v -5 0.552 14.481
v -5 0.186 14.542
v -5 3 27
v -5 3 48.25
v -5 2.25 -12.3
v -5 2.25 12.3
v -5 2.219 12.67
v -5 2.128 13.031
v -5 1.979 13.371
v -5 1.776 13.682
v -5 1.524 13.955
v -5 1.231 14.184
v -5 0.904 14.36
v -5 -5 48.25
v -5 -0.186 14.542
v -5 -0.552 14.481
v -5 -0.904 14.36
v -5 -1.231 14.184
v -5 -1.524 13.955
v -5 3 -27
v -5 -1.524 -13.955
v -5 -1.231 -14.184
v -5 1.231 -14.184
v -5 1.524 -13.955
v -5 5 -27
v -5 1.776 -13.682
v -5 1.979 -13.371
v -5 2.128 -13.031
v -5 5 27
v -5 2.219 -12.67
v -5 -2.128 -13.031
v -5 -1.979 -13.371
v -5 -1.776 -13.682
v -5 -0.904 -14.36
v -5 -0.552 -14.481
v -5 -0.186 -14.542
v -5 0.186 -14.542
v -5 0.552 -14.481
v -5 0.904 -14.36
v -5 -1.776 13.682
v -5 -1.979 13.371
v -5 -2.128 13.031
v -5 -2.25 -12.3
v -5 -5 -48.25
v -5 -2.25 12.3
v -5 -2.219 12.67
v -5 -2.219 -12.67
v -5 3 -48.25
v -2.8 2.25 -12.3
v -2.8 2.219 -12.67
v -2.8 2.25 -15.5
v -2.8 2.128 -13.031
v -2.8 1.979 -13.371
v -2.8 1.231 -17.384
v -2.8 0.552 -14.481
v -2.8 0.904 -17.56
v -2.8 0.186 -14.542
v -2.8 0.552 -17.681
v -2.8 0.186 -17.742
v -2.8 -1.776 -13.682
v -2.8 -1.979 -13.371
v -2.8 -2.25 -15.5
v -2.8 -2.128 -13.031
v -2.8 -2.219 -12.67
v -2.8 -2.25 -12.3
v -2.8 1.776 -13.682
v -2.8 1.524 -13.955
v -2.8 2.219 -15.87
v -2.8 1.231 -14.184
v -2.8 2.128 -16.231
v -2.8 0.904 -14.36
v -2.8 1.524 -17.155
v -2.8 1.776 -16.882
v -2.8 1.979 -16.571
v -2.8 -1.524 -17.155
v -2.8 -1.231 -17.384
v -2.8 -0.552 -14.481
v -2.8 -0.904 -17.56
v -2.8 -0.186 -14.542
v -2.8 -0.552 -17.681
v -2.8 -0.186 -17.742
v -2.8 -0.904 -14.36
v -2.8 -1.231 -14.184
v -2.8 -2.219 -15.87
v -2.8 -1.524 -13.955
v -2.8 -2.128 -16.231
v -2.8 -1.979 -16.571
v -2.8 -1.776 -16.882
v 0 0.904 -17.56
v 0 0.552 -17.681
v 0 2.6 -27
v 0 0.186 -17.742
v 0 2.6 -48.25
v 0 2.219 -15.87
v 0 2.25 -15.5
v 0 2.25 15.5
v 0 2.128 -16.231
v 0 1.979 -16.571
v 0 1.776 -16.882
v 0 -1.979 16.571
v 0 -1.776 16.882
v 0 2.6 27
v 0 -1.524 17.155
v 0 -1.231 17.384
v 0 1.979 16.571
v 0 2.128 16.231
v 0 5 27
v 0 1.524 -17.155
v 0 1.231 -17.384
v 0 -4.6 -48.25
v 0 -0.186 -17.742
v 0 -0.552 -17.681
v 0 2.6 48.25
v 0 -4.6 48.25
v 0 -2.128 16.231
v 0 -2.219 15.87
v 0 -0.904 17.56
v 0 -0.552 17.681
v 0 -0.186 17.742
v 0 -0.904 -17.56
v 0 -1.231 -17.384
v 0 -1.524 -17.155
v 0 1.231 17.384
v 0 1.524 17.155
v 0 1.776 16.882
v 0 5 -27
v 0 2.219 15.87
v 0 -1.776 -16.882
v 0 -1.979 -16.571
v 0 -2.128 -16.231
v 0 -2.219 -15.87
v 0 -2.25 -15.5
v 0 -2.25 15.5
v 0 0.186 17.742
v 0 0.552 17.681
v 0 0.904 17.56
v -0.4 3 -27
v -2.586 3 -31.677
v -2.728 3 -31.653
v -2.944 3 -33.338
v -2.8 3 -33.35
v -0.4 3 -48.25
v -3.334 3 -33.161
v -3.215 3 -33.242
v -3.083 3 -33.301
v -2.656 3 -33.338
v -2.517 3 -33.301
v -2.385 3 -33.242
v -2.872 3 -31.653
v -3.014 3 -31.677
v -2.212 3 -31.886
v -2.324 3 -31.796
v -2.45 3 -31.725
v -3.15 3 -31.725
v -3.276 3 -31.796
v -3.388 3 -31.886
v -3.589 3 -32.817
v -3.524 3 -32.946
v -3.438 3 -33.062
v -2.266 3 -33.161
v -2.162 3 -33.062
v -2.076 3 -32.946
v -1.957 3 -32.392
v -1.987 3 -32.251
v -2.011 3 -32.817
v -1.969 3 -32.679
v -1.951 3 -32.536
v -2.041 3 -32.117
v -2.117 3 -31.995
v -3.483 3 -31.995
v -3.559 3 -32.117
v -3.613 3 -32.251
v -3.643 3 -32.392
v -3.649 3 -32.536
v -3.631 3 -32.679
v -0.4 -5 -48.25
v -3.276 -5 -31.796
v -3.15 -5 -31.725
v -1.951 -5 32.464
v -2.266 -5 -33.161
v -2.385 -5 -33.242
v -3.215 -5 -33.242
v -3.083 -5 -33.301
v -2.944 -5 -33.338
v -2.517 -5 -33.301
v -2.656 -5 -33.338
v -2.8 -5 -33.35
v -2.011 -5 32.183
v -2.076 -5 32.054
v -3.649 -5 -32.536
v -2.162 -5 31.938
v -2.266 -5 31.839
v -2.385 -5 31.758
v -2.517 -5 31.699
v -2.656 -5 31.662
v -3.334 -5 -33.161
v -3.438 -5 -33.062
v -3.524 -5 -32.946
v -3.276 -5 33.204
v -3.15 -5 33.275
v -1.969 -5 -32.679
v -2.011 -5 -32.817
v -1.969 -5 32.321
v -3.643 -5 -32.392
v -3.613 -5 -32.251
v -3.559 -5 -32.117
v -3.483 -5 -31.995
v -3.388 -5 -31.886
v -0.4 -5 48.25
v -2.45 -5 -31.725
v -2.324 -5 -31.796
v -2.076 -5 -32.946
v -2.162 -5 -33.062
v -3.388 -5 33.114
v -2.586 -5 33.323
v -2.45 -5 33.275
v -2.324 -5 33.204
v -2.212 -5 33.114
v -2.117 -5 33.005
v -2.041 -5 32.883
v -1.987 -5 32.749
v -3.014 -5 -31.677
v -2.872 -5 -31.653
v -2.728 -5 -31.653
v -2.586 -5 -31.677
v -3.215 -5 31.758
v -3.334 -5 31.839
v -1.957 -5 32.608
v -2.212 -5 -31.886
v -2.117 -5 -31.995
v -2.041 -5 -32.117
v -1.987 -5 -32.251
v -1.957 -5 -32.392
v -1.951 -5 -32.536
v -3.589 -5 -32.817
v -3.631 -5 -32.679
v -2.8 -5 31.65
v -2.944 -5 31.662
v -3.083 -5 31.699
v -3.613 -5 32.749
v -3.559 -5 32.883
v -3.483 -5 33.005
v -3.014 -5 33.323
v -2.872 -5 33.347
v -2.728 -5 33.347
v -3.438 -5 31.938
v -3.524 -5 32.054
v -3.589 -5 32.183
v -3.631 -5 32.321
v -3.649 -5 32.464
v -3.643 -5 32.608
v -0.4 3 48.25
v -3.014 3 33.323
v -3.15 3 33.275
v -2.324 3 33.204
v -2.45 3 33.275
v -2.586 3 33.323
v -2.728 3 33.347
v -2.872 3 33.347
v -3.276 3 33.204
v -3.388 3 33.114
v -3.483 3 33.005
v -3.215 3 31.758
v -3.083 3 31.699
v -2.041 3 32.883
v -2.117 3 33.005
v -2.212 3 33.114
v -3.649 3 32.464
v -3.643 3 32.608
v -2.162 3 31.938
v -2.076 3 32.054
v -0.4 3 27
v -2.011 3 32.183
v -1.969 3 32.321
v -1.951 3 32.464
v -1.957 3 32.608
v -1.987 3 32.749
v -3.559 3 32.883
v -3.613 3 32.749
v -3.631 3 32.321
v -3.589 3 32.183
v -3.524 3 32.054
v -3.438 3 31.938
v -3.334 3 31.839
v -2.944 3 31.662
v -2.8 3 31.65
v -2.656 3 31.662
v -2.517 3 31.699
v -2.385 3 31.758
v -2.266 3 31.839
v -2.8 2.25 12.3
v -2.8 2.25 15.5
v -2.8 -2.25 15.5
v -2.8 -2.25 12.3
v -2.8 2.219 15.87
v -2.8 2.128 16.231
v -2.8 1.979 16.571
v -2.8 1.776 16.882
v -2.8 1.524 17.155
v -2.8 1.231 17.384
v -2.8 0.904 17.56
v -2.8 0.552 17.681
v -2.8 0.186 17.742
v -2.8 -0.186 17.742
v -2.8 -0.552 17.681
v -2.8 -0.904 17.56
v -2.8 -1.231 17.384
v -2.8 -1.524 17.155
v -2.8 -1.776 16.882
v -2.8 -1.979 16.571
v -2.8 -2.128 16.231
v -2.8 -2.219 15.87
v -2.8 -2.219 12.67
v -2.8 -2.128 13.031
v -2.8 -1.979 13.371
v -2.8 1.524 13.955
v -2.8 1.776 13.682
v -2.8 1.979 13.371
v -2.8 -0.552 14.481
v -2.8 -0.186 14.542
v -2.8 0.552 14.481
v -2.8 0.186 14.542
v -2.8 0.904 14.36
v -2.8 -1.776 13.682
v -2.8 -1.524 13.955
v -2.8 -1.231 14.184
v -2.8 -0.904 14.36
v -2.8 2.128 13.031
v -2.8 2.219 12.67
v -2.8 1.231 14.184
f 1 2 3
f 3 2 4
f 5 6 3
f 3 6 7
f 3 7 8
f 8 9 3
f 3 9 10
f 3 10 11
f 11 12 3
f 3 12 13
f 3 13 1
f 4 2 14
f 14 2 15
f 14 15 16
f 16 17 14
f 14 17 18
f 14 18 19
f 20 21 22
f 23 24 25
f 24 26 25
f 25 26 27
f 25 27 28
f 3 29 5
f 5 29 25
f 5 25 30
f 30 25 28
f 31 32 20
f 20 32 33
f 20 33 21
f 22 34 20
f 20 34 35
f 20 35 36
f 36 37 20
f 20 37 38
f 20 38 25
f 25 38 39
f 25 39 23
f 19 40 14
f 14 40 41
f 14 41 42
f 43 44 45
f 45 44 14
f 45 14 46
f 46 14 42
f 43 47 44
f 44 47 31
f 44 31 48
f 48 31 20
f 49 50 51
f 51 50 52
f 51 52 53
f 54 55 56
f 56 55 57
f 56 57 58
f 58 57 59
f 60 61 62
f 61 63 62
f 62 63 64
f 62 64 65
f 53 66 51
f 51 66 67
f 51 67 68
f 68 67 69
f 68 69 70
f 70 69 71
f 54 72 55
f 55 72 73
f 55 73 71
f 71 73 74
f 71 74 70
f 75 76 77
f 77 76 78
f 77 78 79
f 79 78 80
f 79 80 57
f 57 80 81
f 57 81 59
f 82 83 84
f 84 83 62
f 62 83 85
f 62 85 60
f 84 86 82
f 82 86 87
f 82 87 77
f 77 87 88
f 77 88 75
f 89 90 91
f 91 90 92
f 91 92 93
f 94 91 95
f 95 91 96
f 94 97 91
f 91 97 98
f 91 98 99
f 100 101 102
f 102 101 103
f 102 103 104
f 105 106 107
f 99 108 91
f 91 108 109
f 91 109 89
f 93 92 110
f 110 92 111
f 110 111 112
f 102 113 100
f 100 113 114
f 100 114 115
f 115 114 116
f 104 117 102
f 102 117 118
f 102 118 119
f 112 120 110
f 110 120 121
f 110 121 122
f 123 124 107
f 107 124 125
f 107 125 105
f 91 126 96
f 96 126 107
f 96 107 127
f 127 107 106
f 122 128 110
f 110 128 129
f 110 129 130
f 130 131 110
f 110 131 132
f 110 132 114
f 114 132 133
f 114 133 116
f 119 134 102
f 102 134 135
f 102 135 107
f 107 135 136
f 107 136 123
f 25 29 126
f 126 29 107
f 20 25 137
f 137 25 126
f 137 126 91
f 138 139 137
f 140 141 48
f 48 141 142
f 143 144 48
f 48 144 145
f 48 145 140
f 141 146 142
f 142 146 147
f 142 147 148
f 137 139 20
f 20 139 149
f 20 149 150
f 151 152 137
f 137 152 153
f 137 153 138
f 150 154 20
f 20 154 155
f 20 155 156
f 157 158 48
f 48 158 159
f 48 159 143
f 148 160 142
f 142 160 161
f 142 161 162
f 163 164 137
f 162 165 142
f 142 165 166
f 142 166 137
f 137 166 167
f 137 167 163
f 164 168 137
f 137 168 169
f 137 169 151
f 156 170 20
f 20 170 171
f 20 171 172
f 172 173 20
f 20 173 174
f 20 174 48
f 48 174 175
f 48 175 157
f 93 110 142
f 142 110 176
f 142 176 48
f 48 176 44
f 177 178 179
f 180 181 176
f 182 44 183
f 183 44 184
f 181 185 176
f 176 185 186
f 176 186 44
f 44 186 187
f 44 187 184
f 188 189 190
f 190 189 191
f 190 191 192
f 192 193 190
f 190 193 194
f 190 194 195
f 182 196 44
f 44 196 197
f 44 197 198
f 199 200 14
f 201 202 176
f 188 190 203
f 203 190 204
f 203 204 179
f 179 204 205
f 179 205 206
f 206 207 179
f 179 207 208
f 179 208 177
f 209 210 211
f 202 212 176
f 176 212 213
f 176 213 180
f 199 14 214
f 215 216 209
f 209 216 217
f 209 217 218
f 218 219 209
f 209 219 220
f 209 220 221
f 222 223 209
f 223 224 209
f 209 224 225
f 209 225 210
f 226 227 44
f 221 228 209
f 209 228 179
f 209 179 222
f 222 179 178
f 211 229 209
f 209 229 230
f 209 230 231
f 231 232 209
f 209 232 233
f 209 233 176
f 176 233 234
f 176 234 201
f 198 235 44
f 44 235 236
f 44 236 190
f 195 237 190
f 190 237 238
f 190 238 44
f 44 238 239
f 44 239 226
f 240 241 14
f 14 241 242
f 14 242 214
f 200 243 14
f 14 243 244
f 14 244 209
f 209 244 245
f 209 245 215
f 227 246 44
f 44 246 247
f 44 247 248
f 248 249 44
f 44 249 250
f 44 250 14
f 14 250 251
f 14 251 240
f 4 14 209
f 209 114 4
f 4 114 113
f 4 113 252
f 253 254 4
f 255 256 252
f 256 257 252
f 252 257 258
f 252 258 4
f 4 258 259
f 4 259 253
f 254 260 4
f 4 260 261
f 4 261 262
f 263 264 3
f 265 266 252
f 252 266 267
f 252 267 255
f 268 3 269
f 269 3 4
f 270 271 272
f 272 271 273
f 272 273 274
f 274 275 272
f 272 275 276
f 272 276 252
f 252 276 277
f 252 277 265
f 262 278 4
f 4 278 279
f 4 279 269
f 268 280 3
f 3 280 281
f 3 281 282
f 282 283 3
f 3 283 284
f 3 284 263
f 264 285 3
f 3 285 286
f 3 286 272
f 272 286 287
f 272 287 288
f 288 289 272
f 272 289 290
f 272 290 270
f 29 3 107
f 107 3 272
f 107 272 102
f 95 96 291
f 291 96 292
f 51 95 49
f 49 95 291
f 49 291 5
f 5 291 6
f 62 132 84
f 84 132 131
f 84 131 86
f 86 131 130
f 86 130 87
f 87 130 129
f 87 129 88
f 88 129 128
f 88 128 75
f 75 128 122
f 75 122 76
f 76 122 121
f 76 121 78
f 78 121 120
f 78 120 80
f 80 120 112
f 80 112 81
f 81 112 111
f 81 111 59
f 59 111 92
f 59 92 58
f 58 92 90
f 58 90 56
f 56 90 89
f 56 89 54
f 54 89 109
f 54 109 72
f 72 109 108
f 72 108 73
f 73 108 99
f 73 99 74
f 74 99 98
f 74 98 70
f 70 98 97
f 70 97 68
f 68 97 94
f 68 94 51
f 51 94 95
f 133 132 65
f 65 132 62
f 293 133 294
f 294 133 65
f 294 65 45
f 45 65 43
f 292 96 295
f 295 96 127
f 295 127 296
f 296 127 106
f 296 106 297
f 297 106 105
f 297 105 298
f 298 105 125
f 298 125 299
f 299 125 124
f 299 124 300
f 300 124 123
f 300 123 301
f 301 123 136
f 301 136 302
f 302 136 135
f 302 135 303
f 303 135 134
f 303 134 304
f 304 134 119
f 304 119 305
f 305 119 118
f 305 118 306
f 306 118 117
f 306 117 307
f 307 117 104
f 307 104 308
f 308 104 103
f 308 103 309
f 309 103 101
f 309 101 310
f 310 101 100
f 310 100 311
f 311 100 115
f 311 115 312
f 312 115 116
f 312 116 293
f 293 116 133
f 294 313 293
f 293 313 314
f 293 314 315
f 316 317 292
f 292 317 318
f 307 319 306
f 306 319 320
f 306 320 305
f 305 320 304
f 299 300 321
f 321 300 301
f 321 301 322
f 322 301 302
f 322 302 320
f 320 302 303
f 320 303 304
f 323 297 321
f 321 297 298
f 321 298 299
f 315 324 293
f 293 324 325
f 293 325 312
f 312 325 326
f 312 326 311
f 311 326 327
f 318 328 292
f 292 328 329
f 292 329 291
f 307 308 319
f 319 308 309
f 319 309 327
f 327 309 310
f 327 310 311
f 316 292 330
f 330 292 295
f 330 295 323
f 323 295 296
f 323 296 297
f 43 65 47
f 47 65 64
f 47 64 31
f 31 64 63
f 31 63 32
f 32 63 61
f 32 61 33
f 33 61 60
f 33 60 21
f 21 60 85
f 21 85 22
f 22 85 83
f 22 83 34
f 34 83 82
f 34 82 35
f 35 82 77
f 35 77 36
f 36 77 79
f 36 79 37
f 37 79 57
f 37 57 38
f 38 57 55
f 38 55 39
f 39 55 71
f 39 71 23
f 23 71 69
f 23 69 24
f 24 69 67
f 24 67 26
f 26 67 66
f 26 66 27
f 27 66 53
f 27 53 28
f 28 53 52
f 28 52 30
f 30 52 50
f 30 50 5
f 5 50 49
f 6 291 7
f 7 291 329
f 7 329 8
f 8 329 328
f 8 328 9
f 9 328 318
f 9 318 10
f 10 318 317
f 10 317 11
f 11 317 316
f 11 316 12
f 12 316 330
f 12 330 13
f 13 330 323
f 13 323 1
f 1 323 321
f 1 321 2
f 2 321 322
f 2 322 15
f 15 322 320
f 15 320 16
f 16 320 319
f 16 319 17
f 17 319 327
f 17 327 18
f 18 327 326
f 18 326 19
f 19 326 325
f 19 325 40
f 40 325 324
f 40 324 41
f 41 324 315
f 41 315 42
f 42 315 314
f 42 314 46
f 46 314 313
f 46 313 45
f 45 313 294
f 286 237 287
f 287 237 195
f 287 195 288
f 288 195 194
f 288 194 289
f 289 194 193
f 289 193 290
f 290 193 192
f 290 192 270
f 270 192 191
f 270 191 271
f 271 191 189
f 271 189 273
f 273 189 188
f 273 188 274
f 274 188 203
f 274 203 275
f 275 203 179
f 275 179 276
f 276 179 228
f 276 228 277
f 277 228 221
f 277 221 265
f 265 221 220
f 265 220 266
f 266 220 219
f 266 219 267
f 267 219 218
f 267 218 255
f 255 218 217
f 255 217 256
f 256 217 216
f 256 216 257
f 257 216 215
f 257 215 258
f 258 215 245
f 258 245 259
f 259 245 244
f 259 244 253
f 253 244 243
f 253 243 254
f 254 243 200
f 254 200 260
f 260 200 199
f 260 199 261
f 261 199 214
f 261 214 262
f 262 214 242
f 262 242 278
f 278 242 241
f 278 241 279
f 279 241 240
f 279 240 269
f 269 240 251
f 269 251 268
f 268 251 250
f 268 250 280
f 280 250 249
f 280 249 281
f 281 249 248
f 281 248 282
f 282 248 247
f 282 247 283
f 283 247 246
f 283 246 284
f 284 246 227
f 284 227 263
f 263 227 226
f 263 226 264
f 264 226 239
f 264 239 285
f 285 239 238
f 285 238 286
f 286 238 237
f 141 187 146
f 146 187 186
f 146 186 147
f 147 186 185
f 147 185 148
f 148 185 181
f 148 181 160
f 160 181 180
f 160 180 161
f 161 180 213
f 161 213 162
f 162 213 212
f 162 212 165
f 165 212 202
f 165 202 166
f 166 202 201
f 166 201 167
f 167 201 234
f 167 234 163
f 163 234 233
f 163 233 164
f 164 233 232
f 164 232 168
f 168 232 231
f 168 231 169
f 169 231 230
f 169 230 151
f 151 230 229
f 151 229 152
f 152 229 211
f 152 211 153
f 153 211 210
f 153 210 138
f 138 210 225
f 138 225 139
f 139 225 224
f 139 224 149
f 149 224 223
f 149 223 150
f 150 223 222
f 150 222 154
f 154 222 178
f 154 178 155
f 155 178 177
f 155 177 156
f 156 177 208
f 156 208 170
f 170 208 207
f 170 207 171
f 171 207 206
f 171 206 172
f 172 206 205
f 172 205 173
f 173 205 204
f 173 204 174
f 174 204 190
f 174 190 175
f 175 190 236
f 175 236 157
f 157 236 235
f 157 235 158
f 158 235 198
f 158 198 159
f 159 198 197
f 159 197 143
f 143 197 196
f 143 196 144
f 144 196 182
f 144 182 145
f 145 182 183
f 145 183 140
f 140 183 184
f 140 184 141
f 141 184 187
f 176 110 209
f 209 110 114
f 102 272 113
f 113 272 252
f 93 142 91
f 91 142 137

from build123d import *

# Parameters (mm, degrees)
EXTRUDE_1_DEPTH     = 5
CUT_EXTRUDE_1_DEPTH = 2.8
CUT_EXTRUDE_2_DEPTH = 49.765382189
SKETCH_6_W          = 5
SKETCH_6_H          = 21.25
EXTRUDE_2_DEPTH     = 2
SKETCH_5_R          = 0.85
CUT_EXTRUDE_4_DEPTH = 50.528400943
CHAMFER_1_SIZE      = 0.4


with BuildPart() as part:
    # 草图1 → 凸台-拉伸1 (new body)
    with BuildSketch(Plane(origin=(0, 0, 0), x_dir=(0, 0, -1), z_dir=(1, 0, 0))):
        Polygon((-27, 5), (27, 5), (27, 3), (48.25, 3), (48.25, -3), (27, -3), (27, -5), (-27, -5), (-27, -3), (-48.25, -3), (-48.25, 3), (-27, 3), align=None)
    extrude(amount=-EXTRUDE_1_DEPTH)

    # 草图1<3> → 切除-拉伸1 (cut)
    with BuildSketch(Plane(origin=(0, 0, 0), x_dir=(0, 0, -1), z_dir=(1, 0, 0))):
        with BuildLine():
            Line((-15.5, 2.25), (15.5, 2.25))
            ThreePointArc((15.5, 2.25), (17.75, 0), (15.5, -2.25))
            Line((15.5, -2.25), (-15.5, -2.25))
            ThreePointArc((-15.5, -2.25), (-17.75, 0), (-15.5, 2.25))
        make_face()
    extrude(amount=-CUT_EXTRUDE_1_DEPTH, mode=Mode.SUBTRACT)

    # 草图1<4> → 切除-拉伸2 (cut, through all)
    with BuildSketch(Plane(origin=(0, 0, 0), x_dir=(0, 0, -1), z_dir=(1, 0, 0))):
        with BuildLine():
            Line((-12.3, 2.25), (12.3, 2.25))
            ThreePointArc((12.3, 2.25), (14.55, 0), (12.3, -2.25))
            Line((12.3, -2.25), (-12.3, -2.25))
            ThreePointArc((-12.3, -2.25), (-14.55, 0), (-12.3, 2.25))
        make_face()
    extrude(amount=-CUT_EXTRUDE_2_DEPTH, mode=Mode.SUBTRACT)

    # 草图6 → 凸台-拉伸2 (add)
    with BuildSketch(Plane.XZ.offset(3)):
        with Locations((-2.5, -37.625)):
            Rectangle(SKETCH_6_W, SKETCH_6_H)
        with Locations((-2.5, 37.625)):
            Rectangle(SKETCH_6_W, SKETCH_6_H)
    extrude(amount=EXTRUDE_2_DEPTH)

    # 草图5 → 切除-拉伸4 (cut, through all)
    with BuildSketch(Plane.XZ.offset(5)):
        with Locations(Location((-2.8, 32.5, 0), (0, 0, 270))):
            Circle(SKETCH_5_R)
        with Locations(Location((-2.8, -32.5, 0), (0, 0, 270))):
            Circle(SKETCH_5_R)
    extrude(amount=-CUT_EXTRUDE_4_DEPTH, mode=Mode.SUBTRACT)

    # 倒角1
    chamfer_1_edges = [part.edges().sort_by_distance(p)[0] for p in [
        (0, 3, 37.625),
        (0, -5, 0),
        (0, 3, -37.625),
    ]]
    chamfer(chamfer_1_edges, length=CHAMFER_1_SIZE)


solid = part.part
